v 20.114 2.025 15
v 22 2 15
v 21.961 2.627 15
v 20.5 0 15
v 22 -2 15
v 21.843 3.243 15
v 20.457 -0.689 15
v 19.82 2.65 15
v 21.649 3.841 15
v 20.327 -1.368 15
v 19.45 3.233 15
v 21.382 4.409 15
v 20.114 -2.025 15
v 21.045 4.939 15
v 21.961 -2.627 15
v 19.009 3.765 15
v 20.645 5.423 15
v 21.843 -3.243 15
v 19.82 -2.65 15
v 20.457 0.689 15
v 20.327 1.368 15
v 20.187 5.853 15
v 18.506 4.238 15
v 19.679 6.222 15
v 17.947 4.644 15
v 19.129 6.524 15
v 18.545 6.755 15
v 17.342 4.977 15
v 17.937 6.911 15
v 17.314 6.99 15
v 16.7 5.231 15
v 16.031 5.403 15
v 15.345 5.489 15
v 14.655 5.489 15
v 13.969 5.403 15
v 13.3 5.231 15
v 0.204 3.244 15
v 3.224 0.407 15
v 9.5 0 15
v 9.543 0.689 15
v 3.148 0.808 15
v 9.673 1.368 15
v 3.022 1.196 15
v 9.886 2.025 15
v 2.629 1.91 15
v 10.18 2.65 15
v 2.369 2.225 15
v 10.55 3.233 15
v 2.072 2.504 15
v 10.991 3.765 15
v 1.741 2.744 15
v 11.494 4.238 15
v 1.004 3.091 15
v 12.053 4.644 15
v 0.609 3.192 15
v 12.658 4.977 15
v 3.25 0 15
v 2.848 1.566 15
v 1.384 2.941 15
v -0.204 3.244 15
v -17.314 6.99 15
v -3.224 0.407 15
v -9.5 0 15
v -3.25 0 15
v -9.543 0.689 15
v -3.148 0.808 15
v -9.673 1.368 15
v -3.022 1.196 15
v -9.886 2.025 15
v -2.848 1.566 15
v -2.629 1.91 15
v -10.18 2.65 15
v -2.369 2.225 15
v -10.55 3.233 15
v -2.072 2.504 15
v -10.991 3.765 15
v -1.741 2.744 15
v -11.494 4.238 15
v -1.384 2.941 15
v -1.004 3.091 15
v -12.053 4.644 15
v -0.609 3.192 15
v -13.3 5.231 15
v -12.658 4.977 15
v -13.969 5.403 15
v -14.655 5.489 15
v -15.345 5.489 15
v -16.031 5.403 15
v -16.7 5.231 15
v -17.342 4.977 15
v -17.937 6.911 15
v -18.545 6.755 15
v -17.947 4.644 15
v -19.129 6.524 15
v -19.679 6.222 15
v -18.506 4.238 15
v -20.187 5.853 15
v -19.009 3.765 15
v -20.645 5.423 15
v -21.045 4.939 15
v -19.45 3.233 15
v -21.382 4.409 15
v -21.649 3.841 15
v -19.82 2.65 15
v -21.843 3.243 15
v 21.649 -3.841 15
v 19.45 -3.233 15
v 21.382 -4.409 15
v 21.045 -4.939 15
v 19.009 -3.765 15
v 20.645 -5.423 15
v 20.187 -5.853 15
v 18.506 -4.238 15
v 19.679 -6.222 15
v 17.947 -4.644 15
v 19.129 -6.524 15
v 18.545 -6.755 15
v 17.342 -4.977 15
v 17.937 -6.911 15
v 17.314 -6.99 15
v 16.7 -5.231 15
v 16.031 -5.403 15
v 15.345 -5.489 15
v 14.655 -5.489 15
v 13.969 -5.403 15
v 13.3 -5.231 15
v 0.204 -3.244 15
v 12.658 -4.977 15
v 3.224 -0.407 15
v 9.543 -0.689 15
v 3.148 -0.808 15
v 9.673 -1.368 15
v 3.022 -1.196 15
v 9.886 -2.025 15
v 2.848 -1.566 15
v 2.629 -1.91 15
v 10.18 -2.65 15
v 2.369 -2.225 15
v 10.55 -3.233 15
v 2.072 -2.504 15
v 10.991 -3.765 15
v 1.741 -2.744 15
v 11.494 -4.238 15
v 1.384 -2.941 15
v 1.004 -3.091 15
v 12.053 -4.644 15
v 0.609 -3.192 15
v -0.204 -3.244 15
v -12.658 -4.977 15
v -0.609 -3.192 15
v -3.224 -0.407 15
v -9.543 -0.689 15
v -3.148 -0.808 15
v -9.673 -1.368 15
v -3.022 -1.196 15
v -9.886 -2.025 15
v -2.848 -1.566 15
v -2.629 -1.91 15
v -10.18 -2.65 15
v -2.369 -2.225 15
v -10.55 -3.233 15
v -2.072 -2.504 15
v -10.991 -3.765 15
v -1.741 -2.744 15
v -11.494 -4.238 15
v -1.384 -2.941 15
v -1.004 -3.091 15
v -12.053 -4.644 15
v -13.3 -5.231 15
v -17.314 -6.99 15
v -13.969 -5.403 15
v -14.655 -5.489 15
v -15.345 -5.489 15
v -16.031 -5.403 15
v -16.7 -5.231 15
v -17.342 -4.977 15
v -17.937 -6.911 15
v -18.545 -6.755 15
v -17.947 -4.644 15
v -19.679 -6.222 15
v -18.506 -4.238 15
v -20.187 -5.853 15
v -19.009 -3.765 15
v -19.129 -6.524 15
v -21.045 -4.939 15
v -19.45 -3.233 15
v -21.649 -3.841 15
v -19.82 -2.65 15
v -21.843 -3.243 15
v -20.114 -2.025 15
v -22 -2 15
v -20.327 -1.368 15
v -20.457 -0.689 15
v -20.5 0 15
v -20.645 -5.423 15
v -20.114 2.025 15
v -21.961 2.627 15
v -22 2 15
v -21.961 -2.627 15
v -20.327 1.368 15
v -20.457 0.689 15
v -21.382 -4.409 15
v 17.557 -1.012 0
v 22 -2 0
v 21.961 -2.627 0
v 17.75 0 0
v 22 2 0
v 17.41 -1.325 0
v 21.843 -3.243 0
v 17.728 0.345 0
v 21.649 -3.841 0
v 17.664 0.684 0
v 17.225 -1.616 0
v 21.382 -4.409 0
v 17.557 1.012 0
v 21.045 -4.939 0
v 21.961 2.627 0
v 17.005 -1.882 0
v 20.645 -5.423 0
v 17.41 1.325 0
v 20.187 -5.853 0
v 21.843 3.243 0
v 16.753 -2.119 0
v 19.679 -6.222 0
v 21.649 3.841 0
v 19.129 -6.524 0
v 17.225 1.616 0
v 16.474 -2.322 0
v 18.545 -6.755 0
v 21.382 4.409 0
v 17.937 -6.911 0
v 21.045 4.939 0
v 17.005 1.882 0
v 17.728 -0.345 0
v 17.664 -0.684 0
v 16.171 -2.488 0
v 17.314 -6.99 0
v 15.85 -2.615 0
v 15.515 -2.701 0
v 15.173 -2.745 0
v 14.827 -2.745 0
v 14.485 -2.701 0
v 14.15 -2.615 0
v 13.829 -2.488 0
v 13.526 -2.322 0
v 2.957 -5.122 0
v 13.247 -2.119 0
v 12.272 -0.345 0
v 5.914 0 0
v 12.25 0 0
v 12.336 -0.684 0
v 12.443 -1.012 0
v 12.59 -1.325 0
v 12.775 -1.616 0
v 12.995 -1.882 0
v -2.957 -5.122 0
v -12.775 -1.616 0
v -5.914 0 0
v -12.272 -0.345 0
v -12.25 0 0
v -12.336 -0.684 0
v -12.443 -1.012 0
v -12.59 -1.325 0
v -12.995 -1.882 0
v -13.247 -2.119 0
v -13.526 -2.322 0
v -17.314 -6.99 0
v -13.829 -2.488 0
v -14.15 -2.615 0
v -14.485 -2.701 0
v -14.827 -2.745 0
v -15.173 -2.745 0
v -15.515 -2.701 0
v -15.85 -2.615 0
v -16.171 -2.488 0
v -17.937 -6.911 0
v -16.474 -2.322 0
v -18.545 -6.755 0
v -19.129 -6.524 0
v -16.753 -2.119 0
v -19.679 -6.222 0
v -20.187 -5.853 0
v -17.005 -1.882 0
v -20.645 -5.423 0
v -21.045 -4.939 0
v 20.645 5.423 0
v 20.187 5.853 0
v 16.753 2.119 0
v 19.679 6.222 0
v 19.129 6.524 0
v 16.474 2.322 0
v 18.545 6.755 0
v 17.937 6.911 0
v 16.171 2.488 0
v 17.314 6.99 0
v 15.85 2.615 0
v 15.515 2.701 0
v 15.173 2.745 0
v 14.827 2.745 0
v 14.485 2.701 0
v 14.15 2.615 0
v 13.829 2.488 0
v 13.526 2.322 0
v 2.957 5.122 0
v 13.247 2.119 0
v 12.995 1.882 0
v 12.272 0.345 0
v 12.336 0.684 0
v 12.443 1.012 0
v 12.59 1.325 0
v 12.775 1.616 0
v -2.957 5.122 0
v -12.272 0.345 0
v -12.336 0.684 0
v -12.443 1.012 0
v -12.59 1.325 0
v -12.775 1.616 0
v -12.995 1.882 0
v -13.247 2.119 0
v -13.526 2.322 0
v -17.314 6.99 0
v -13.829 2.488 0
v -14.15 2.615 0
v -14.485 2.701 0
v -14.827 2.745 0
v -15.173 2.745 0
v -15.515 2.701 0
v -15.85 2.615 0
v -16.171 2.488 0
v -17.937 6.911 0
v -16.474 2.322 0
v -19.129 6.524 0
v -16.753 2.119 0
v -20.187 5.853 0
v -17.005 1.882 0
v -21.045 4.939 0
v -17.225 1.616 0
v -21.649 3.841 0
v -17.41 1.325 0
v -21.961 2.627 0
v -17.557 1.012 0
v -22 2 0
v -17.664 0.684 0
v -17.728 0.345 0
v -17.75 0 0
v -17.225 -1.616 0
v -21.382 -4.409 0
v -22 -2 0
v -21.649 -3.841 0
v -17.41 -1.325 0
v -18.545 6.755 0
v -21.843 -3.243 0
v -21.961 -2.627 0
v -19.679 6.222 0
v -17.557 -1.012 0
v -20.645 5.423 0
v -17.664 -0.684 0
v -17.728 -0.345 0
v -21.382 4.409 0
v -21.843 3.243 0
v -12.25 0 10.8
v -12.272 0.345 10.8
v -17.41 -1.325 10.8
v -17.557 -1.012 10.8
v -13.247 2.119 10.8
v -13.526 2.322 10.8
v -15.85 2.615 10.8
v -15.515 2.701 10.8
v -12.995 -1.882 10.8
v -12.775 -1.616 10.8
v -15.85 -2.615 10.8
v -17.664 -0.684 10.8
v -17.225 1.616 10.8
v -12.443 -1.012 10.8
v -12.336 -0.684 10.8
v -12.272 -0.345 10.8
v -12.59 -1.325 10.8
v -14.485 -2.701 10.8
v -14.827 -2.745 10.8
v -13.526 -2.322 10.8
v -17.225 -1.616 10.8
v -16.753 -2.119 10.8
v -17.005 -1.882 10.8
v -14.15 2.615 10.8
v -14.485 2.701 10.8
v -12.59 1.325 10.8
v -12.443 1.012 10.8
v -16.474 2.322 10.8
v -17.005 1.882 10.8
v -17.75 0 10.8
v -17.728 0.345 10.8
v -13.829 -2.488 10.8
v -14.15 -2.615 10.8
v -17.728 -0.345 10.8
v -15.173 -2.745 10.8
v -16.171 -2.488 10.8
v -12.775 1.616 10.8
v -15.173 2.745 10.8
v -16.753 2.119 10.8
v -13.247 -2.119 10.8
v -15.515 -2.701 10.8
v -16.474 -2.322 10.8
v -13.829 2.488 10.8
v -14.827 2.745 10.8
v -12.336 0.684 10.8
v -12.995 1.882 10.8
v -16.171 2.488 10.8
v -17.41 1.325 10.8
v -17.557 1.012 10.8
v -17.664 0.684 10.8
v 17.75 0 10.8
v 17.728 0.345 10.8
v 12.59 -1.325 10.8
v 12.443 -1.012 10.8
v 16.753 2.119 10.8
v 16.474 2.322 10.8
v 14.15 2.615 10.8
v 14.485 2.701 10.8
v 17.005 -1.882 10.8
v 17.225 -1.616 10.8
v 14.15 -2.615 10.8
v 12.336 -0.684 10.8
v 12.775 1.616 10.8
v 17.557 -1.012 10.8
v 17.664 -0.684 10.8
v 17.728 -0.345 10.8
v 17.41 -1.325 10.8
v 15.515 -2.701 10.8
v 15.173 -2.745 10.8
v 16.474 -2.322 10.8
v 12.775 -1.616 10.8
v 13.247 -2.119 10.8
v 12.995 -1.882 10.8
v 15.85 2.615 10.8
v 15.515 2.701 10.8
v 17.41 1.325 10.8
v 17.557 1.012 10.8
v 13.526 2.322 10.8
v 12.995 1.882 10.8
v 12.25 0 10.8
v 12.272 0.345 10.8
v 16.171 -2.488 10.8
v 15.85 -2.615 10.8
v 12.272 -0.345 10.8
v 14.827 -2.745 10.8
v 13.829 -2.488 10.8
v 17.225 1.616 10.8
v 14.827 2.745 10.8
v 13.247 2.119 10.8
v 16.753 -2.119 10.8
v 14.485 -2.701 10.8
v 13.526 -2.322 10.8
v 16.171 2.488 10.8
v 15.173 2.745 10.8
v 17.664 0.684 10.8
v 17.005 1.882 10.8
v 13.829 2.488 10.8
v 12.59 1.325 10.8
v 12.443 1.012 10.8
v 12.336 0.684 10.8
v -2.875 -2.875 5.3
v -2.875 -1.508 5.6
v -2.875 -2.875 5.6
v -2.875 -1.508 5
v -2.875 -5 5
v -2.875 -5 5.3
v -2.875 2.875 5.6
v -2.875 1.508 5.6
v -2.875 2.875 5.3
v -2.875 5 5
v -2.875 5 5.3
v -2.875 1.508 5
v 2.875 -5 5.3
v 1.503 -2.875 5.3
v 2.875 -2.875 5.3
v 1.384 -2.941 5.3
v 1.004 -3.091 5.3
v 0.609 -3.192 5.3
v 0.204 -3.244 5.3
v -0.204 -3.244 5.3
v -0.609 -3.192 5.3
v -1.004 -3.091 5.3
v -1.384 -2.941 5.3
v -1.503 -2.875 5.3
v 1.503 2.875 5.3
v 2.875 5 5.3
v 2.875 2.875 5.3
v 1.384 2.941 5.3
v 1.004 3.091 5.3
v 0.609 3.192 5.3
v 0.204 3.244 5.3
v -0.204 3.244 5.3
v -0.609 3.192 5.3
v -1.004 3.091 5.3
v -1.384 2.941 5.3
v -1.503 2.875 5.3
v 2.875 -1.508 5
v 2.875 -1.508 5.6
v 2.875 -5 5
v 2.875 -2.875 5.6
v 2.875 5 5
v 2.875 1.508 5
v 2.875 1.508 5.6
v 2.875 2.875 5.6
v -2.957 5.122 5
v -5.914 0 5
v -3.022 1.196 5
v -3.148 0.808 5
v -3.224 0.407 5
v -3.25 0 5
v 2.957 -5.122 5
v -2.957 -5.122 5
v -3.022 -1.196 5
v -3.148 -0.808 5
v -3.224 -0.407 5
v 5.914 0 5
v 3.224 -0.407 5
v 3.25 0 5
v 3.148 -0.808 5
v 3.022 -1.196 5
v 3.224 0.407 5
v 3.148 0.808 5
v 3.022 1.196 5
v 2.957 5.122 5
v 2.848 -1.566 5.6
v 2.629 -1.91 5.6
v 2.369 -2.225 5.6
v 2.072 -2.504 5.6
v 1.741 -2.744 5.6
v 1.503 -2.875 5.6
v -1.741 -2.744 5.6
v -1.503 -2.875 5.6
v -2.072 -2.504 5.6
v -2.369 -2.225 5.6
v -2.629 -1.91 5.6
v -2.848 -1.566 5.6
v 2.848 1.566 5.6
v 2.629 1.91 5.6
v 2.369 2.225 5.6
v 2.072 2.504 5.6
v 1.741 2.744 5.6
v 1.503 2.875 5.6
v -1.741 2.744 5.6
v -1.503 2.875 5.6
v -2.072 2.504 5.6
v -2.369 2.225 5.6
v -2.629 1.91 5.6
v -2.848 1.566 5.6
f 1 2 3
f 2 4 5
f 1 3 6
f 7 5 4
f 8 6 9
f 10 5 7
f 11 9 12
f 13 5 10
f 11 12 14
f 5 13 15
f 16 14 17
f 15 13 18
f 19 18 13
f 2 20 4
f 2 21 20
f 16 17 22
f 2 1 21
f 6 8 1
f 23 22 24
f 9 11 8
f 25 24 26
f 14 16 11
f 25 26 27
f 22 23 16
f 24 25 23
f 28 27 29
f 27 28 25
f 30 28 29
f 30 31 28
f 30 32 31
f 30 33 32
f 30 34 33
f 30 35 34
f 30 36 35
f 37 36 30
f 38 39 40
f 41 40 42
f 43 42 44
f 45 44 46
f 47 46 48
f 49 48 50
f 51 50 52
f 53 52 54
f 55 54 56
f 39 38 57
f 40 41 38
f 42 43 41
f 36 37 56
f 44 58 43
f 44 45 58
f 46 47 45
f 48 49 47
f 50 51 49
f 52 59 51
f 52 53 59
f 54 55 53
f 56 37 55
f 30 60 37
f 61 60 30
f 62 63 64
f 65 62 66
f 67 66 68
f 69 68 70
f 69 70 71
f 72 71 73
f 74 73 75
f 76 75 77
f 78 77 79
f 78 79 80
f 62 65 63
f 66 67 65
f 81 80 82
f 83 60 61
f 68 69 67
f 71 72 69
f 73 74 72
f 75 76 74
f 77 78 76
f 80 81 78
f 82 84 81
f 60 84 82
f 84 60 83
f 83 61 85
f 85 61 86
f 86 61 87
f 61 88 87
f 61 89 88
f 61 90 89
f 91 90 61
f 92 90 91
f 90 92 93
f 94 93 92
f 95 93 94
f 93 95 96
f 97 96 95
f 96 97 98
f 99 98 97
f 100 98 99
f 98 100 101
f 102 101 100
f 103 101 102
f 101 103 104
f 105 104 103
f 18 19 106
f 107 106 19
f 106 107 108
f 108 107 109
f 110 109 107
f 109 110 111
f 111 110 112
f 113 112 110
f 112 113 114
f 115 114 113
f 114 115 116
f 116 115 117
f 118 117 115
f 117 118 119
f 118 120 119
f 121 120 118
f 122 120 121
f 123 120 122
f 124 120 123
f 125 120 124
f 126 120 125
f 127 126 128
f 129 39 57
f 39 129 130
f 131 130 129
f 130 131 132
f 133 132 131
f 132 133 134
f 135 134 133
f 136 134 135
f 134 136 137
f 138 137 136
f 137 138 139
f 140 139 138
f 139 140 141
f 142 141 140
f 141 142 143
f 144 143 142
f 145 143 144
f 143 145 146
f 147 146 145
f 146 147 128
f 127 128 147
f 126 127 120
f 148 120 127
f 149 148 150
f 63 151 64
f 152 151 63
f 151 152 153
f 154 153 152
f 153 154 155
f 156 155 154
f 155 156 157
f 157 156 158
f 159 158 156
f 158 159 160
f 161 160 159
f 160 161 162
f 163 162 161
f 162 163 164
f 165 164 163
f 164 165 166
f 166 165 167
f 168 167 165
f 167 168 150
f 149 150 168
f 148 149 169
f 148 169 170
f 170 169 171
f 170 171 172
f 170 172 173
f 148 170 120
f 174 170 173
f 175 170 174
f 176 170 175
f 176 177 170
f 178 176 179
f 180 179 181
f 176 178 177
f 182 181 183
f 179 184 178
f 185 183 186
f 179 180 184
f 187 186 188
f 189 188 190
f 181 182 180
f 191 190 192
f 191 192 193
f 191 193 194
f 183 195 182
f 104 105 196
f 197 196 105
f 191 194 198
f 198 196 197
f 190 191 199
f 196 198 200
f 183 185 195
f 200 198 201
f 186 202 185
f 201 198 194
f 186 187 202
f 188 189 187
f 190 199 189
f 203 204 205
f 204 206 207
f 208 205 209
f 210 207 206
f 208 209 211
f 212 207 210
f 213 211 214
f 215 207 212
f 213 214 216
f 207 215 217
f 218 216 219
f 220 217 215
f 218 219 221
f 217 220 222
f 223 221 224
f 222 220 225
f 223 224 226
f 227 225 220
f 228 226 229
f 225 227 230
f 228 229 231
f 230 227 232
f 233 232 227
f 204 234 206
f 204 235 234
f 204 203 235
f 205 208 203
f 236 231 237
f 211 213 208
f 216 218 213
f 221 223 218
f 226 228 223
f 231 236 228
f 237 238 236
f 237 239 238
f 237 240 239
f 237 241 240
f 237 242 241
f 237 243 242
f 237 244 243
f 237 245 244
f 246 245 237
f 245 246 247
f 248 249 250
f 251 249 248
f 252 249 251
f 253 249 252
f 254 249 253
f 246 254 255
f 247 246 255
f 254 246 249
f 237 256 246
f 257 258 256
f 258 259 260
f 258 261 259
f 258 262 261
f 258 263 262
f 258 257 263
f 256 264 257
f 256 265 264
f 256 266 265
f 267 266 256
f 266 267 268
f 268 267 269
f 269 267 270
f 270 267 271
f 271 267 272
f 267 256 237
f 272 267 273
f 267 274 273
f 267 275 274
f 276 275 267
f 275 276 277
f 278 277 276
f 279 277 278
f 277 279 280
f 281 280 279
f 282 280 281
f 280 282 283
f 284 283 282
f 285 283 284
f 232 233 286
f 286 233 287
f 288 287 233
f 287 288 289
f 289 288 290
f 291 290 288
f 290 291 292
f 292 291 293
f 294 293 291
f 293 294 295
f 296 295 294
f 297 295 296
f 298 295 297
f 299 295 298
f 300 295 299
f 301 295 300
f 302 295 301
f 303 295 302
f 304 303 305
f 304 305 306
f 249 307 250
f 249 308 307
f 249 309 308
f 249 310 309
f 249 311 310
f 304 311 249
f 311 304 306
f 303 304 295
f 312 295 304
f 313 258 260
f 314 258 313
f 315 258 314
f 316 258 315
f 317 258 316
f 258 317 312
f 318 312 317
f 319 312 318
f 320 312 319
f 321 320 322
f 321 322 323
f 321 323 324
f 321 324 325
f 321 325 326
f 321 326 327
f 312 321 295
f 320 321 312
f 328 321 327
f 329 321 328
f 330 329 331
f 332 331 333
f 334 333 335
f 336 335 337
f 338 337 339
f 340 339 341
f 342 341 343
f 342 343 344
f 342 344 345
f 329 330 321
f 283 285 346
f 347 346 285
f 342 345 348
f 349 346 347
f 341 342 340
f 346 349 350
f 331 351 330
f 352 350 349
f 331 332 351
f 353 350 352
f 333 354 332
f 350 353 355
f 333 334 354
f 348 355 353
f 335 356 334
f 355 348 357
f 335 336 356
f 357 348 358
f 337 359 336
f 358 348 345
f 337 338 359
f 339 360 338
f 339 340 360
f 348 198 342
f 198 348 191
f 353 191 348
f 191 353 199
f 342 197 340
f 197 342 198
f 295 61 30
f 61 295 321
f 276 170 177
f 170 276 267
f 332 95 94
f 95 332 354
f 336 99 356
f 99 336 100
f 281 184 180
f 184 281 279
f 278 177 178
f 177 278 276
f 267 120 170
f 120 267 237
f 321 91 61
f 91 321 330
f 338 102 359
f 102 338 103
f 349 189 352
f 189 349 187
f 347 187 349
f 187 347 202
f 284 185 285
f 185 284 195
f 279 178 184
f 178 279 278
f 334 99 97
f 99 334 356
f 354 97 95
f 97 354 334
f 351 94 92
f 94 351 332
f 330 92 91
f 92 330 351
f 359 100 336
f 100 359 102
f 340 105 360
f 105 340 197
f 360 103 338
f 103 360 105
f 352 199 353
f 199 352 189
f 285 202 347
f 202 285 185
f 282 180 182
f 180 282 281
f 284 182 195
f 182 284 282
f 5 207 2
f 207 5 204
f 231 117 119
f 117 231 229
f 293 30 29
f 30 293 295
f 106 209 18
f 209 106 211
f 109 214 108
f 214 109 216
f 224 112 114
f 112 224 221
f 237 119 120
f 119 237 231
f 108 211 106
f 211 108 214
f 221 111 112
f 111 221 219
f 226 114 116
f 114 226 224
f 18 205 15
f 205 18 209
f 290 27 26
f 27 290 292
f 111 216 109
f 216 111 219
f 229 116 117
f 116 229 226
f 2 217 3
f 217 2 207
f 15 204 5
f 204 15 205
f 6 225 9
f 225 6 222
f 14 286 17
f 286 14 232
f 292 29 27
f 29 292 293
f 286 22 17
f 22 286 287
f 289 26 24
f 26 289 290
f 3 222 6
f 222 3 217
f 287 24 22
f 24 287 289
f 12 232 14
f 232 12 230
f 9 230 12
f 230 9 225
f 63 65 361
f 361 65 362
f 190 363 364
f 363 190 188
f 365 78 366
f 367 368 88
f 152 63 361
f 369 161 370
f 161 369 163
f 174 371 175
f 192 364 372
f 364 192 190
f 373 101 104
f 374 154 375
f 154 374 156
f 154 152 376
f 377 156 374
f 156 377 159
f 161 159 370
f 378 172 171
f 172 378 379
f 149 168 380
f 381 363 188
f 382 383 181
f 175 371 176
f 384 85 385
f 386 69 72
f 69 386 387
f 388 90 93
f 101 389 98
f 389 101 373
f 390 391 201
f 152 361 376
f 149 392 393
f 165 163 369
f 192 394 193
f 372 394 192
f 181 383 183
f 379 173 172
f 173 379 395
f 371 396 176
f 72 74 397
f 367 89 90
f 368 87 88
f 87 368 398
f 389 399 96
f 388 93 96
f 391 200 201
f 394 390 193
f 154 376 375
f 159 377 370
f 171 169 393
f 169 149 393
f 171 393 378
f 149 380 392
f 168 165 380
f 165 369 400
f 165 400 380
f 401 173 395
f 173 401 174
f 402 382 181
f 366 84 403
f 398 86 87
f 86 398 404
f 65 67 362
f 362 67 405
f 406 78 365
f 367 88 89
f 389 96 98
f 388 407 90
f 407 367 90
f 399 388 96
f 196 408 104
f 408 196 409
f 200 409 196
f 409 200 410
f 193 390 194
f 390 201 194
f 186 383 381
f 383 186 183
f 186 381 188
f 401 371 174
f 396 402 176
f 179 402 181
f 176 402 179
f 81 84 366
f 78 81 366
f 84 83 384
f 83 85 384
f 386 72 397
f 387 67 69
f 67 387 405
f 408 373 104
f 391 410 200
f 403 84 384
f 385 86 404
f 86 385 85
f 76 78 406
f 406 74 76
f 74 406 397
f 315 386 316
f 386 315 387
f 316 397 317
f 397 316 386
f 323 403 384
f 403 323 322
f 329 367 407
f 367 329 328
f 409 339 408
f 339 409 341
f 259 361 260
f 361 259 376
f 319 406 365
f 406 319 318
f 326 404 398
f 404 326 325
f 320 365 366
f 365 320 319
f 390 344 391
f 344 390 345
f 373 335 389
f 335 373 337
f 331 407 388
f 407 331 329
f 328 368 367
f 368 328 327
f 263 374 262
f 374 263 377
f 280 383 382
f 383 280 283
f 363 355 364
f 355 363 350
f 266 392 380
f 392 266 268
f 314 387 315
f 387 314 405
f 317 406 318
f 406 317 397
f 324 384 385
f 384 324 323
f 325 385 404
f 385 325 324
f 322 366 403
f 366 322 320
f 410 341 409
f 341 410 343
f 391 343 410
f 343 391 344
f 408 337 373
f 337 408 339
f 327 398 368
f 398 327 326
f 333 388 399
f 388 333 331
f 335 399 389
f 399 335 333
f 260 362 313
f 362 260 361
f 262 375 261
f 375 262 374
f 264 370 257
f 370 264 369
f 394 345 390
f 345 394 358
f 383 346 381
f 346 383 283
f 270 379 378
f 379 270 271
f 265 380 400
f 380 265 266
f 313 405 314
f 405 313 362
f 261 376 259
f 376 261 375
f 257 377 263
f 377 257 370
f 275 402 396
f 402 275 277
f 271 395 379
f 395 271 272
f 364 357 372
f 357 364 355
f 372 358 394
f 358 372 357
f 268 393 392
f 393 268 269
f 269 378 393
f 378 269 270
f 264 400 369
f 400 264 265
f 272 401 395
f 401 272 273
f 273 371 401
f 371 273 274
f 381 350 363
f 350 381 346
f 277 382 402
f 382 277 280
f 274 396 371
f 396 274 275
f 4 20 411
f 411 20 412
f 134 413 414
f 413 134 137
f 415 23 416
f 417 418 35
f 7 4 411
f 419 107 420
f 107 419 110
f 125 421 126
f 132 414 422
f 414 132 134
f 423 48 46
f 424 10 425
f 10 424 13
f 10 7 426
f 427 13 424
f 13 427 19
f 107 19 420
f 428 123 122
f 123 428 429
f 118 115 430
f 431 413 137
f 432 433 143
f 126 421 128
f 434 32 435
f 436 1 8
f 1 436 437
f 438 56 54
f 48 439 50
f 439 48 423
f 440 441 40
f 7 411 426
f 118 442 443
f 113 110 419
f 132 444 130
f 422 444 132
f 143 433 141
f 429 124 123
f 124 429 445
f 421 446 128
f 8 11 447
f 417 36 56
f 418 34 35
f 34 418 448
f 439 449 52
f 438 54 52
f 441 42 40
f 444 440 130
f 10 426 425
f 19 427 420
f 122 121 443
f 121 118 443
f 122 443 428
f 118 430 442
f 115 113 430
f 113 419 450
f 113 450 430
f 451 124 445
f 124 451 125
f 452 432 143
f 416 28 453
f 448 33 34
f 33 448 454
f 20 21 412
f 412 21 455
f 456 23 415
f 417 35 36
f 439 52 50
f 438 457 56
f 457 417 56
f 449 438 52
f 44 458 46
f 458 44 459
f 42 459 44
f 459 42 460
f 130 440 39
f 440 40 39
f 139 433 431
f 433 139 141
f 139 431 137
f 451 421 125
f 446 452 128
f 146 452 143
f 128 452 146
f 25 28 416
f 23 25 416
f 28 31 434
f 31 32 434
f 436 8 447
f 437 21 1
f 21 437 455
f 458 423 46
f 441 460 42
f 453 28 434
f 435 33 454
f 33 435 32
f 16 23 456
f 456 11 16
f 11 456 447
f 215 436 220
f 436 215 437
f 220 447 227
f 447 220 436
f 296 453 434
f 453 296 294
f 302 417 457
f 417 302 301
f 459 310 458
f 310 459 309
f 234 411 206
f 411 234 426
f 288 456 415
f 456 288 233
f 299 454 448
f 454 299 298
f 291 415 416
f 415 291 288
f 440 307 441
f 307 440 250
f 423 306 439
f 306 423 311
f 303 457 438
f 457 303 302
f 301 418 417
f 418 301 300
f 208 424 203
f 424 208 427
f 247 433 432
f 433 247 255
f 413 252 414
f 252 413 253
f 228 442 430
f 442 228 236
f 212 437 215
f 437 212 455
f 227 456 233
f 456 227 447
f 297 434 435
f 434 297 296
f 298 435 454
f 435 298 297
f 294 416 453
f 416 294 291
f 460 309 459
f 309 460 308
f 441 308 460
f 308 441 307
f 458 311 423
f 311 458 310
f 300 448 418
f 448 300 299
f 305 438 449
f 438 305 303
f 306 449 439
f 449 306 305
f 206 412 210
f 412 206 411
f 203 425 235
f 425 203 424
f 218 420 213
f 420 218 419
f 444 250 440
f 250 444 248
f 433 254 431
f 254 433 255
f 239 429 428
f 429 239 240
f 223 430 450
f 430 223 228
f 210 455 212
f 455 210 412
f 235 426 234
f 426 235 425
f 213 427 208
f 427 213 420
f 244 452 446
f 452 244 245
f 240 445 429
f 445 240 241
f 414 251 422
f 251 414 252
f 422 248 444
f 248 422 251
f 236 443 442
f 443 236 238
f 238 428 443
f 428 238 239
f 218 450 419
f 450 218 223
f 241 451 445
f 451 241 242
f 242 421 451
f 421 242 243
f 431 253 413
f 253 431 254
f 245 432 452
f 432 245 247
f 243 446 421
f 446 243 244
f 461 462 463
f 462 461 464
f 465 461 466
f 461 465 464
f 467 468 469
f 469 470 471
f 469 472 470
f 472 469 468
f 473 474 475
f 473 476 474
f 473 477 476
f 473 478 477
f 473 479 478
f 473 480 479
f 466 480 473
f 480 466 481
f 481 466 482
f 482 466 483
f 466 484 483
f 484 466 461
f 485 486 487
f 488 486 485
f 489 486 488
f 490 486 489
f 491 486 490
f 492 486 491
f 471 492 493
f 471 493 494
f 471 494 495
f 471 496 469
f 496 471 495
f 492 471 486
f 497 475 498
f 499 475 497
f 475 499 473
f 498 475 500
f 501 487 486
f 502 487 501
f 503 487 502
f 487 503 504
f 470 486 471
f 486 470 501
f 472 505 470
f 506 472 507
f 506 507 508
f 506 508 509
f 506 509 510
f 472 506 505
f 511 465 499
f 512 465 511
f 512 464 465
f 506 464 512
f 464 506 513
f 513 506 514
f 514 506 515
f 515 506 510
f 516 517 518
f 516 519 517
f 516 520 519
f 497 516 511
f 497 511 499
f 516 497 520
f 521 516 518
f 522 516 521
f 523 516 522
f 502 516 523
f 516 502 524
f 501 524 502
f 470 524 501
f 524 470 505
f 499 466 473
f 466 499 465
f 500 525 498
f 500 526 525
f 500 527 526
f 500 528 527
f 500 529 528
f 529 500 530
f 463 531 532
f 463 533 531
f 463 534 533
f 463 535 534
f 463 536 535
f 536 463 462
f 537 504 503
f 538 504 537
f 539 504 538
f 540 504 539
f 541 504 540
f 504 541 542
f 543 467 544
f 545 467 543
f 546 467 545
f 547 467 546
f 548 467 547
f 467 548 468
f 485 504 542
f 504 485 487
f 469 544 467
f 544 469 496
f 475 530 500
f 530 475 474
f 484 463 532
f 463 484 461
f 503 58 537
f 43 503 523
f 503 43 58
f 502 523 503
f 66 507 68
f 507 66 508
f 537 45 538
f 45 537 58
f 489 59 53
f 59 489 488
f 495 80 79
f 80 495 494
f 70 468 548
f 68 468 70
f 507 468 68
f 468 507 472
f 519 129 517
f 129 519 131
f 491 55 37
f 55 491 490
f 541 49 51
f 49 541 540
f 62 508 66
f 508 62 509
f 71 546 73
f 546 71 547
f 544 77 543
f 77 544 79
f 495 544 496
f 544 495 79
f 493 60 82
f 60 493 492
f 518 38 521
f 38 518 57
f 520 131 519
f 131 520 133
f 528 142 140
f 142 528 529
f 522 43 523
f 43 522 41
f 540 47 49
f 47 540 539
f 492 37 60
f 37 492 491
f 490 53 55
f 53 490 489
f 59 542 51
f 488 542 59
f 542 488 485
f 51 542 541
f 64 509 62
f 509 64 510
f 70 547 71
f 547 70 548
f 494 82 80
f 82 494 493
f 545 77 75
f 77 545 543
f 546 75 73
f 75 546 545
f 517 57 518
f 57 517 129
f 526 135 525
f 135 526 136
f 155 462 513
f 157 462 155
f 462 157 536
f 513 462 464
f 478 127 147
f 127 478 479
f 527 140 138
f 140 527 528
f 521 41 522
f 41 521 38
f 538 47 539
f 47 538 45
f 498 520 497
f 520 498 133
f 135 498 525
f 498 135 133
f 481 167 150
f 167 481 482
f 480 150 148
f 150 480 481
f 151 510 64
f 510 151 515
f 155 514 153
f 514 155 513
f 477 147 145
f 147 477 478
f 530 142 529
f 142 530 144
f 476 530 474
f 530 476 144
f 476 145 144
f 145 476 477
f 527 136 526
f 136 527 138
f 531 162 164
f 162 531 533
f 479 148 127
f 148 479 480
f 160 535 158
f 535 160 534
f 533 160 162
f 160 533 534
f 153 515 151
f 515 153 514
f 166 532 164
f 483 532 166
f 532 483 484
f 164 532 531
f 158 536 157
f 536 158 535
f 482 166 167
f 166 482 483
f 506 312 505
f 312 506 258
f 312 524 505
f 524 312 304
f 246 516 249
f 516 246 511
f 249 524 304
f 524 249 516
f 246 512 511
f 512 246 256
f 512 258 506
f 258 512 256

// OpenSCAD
$fn = 50;


difference() {
	union() {
		cylinder(h = 15, r = 7.0000000000);
		translate(v = [-7.5000000000, 0.0000000000, 0]) {
			hull() {
				translate(v = [-9.5000000000, 2.0000000000, 0]) {
					cylinder(h = 15, r = 5);
				}
				translate(v = [9.5000000000, 2.0000000000, 0]) {
					cylinder(h = 15, r = 5);
				}
				translate(v = [-9.5000000000, -2.0000000000, 0]) {
					cylinder(h = 15, r = 5);
				}
				translate(v = [9.5000000000, -2.0000000000, 0]) {
					cylinder(h = 15, r = 5);
				}
			}
		}
		translate(v = [-7.5000000000, 0.0000000000, 0]) {
			hull() {
				translate(v = [-9.5000000000, 2.0000000000, 0]) {
					cylinder(h = 15, r = 5);
				}
				translate(v = [9.5000000000, 2.0000000000, 0]) {
					cylinder(h = 15, r = 5);
				}
				translate(v = [-9.5000000000, -2.0000000000, 0]) {
					cylinder(h = 15, r = 5);
				}
				translate(v = [9.5000000000, -2.0000000000, 0]) {
					cylinder(h = 15, r = 5);
				}
			}
		}
		translate(v = [7.5000000000, 0.0000000000, 0]) {
			hull() {
				translate(v = [-9.5000000000, 2.0000000000, 0]) {
					cylinder(h = 15, r = 5);
				}
				translate(v = [9.5000000000, 2.0000000000, 0]) {
					cylinder(h = 15, r = 5);
				}
				translate(v = [-9.5000000000, -2.0000000000, 0]) {
					cylinder(h = 15, r = 5);
				}
				translate(v = [9.5000000000, -2.0000000000, 0]) {
					cylinder(h = 15, r = 5);
				}
			}
		}
		translate(v = [7.5000000000, 0.0000000000, 0]) {
			hull() {
				translate(v = [-9.5000000000, 2.0000000000, 0]) {
					cylinder(h = 15, r = 5);
				}
				translate(v = [9.5000000000, 2.0000000000, 0]) {
					cylinder(h = 15, r = 5);
				}
				translate(v = [-9.5000000000, -2.0000000000, 0]) {
					cylinder(h = 15, r = 5);
				}
				translate(v = [9.5000000000, -2.0000000000, 0]) {
					cylinder(h = 15, r = 5);
				}
			}
		}
	}
	union() {
		translate(v = [-15.0000000000, 0.0000000000, 15]) {
			rotate(a = [0, 0, 0]) {
				difference() {
					union() {
						#translate(v = [0, 0, -15.0000000000]) {
							cylinder(h = 15, r = 2.2500000000);
						}
						#translate(v = [0, 0, -4.2000000000]) {
							cylinder(h = 4.2000000000, r1 = 2.7500000000, r2 = 5.5000000000);
						}
						#translate(v = [0, 0, -15.0000000000]) {
							cylinder(h = 15, r = 2.7500000000);
						}
						#translate(v = [0, 0, -15.0000000000]) {
							cylinder(h = 15, r = 2.2500000000);
						}
					}
					union();
				}
			}
		}
		translate(v = [-15.0000000000, 0.0000000000, 15]) {
			rotate(a = [0, 0, 0]) {
				difference() {
					union() {
						#translate(v = [0, 0, -15.0000000000]) {
							cylinder(h = 15, r = 2.2500000000);
						}
						#translate(v = [0, 0, -4.2000000000]) {
							cylinder(h = 4.2000000000, r1 = 2.7500000000, r2 = 5.5000000000);
						}
						#translate(v = [0, 0, -15.0000000000]) {
							cylinder(h = 15, r = 2.7500000000);
						}
						#translate(v = [0, 0, -15.0000000000]) {
							cylinder(h = 15, r = 2.2500000000);
						}
					}
					union();
				}
			}
		}
		translate(v = [15.0000000000, 0.0000000000, 15]) {
			rotate(a = [0, 0, 0]) {
				difference() {
					union() {
						#translate(v = [0, 0, -15.0000000000]) {
							cylinder(h = 15, r = 2.2500000000);
						}
						#translate(v = [0, 0, -4.2000000000]) {
							cylinder(h = 4.2000000000, r1 = 2.7500000000, r2 = 5.5000000000);
						}
						#translate(v = [0, 0, -15.0000000000]) {
							cylinder(h = 15, r = 2.7500000000);
						}
						#translate(v = [0, 0, -15.0000000000]) {
							cylinder(h = 15, r = 2.2500000000);
						}
					}
					union();
				}
			}
		}
		translate(v = [15.0000000000, 0.0000000000, 15]) {
			rotate(a = [0, 0, 0]) {
				difference() {
					union() {
						#translate(v = [0, 0, -15.0000000000]) {
							cylinder(h = 15, r = 2.2500000000);
						}
						#translate(v = [0, 0, -4.2000000000]) {
							cylinder(h = 4.2000000000, r1 = 2.7500000000, r2 = 5.5000000000);
						}
						#translate(v = [0, 0, -15.0000000000]) {
							cylinder(h = 15, r = 2.7500000000);
						}
						#translate(v = [0, 0, -15.0000000000]) {
							cylinder(h = 15, r = 2.2500000000);
						}
					}
					union();
				}
			}
		}
		translate(v = [0.0000000000, 0.0000000000, 0]) {
			rotate(a = [0, 0, 0]) {
				difference() {
					union() {
						#translate(v = [-2.8750000000, -5.0000000000, -0.3000000000]) {
							cube(size = [5.7500000000, 10, 0.3000000000]);
						}
						#translate(v = [-2.8750000000, -2.8750000000, -0.6000000000]) {
							cube(size = [5.7500000000, 5.7500000000, 0.3000000000]);
						}
						#translate(v = [-2.8750000000, -5.0000000000, 5]) {
							cube(size = [5.7500000000, 10, 0.3000000000]);
						}
						#translate(v = [-2.8750000000, -2.8750000000, 5.3000000000]) {
							cube(size = [5.7500000000, 5.7500000000, 0.3000000000]);
						}
						#translate(v = [0, 0, -100.0000000000]) {
							cylinder(h = 200, r = 3.2500000000);
						}
						#linear_extrude(height = 5) {
							polygon(points = [[5.9142500000, 0.0000000000], [2.9571250000, 5.1218907443], [-2.9571250000, 5.1218907443], [-5.9142500000, 0.0000000000], [-2.9571250000, -5.1218907443], [2.9571250000, -5.1218907443]]);
						}
						#translate(v = [-2.8750000000, -5.0000000000, -0.3000000000]) {
							cube(size = [5.7500000000, 10, 0.3000000000]);
						}
						#translate(v = [-2.8750000000, -2.8750000000, -0.6000000000]) {
							cube(size = [5.7500000000, 5.7500000000, 0.3000000000]);
						}
						#translate(v = [-2.8750000000, -5.0000000000, 5]) {
							cube(size = [5.7500000000, 10, 0.3000000000]);
						}
						#translate(v = [-2.8750000000, -2.8750000000, 5.3000000000]) {
							cube(size = [5.7500000000, 5.7500000000, 0.3000000000]);
						}
						#translate(v = [0, 0, -100.0000000000]) {
							cylinder(h = 200, r = 3.2500000000);
						}
						#translate(v = [-2.8750000000, -5.0000000000, -0.3000000000]) {
							cube(size = [5.7500000000, 10, 0.3000000000]);
						}
						#translate(v = [-2.8750000000, -2.8750000000, -0.6000000000]) {
							cube(size = [5.7500000000, 5.7500000000, 0.3000000000]);
						}
						#translate(v = [-2.8750000000, -5.0000000000, 5]) {
							cube(size = [5.7500000000, 10, 0.3000000000]);
						}
						#translate(v = [-2.8750000000, -2.8750000000, 5.3000000000]) {
							cube(size = [5.7500000000, 5.7500000000, 0.3000000000]);
						}
						#translate(v = [0, 0, -100.0000000000]) {
							cylinder(h = 200, r = 3.2500000000);
						}
					}
					union();
				}
			}
		}
		translate(v = [0, 0, -100]) {
			cylinder(h = 200, r = 3.2500000000);
		}
		translate(v = [0, 0, -100]) {
			cylinder(h = 200, r = 1.8000000000);
		}
	}
}
